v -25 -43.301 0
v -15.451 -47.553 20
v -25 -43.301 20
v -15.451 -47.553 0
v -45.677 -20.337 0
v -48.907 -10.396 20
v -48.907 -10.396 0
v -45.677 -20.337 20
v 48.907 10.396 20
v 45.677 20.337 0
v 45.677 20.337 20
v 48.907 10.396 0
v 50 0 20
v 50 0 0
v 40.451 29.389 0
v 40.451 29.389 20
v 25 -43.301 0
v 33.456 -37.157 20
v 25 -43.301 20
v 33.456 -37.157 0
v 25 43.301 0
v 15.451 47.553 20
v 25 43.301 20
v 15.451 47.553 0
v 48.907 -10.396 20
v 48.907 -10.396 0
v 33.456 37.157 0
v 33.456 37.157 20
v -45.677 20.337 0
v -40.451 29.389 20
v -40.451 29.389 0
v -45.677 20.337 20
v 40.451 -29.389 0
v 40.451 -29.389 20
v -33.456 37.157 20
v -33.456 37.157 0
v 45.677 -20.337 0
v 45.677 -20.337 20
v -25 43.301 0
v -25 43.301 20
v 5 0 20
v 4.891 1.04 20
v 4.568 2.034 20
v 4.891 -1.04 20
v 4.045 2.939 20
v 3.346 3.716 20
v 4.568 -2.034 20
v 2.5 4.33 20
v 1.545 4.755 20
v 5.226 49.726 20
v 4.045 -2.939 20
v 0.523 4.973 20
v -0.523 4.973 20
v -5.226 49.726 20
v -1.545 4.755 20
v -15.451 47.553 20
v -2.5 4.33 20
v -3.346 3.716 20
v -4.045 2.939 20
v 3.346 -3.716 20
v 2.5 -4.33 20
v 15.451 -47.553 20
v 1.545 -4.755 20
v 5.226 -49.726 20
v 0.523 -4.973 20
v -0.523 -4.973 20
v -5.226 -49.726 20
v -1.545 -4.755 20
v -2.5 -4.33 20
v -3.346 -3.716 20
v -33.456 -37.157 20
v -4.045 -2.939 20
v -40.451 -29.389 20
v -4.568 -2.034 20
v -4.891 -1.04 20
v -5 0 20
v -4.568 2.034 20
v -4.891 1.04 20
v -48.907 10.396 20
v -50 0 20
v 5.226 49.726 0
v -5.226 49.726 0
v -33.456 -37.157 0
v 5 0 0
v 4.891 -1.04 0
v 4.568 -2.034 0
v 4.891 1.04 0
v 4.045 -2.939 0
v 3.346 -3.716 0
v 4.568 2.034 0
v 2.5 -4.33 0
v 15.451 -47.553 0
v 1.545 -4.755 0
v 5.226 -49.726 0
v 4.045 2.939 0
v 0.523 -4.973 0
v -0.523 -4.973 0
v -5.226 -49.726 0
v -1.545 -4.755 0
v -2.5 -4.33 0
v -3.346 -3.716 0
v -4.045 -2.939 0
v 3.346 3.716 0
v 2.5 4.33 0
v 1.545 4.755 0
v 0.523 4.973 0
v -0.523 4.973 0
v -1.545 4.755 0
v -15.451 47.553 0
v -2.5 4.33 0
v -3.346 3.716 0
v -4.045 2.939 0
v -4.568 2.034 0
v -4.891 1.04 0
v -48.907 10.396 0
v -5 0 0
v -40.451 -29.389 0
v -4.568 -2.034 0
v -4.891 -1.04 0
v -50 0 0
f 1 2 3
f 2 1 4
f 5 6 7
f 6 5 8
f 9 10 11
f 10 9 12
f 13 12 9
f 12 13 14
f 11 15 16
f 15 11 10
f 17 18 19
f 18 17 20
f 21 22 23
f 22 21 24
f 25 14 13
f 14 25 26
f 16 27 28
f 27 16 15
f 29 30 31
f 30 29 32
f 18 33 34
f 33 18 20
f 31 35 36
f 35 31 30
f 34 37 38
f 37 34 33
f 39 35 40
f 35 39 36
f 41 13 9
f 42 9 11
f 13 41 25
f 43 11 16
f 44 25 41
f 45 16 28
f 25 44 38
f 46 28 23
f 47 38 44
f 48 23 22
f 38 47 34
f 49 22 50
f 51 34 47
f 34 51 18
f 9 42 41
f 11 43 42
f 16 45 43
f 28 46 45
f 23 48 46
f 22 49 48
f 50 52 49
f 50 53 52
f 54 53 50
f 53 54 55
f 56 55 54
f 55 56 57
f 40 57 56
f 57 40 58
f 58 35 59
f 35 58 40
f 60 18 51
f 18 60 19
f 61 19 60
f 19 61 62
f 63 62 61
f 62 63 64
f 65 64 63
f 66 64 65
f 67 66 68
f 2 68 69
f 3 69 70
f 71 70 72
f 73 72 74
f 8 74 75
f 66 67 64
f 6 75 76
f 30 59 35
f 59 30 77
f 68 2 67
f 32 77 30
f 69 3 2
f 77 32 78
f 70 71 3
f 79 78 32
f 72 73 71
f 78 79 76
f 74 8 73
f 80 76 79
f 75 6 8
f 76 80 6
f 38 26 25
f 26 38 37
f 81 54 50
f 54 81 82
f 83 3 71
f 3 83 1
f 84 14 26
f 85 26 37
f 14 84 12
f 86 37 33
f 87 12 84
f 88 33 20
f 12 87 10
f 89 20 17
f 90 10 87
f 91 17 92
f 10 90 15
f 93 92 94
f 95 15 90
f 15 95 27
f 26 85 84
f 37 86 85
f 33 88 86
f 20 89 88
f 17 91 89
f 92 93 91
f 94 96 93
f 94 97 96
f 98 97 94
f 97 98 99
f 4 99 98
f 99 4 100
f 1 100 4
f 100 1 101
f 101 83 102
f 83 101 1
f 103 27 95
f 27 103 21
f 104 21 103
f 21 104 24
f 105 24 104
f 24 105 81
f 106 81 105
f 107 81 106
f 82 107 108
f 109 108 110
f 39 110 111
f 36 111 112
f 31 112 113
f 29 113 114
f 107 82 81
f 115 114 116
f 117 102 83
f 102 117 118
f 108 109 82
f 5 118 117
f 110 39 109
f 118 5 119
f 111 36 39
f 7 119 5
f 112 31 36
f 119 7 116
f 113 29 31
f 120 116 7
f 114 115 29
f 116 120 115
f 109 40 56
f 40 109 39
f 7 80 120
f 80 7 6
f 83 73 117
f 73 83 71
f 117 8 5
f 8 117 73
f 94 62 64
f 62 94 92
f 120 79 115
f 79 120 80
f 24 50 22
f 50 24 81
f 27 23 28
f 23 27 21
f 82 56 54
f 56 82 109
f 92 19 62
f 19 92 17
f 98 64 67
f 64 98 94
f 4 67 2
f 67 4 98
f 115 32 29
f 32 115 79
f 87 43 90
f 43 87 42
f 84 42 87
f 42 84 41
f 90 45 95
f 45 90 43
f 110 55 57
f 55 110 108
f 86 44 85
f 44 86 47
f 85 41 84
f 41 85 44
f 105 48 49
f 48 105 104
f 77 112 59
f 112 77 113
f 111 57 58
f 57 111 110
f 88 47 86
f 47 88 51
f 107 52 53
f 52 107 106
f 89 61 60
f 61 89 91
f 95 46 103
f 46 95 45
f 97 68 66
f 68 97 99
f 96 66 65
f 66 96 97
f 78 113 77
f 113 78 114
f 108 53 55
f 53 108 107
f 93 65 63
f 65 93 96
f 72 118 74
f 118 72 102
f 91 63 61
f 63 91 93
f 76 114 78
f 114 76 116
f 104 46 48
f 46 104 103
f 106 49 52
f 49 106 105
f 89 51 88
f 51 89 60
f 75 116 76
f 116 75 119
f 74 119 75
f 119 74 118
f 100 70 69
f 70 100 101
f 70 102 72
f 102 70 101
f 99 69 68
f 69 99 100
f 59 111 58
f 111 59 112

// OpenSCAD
// Simple cylindrical flywheel
// Parameters: diameter, height, and shaft diameter
// Customize $fs for resolution

diameter = 100;    // mm
height = 20;       // mm
shaft_diameter = 10;  // mm

module flywheel(d, h, shaft_d) {
    difference() {
        cylinder(d=d, h=h, $fs=0.5);
        translate([0, 0, -1])
            cylinder(d=shaft_d, h=h+2, $fs=0.5);
    }
}

flywheel(diameter, height, shaft_diameter);
